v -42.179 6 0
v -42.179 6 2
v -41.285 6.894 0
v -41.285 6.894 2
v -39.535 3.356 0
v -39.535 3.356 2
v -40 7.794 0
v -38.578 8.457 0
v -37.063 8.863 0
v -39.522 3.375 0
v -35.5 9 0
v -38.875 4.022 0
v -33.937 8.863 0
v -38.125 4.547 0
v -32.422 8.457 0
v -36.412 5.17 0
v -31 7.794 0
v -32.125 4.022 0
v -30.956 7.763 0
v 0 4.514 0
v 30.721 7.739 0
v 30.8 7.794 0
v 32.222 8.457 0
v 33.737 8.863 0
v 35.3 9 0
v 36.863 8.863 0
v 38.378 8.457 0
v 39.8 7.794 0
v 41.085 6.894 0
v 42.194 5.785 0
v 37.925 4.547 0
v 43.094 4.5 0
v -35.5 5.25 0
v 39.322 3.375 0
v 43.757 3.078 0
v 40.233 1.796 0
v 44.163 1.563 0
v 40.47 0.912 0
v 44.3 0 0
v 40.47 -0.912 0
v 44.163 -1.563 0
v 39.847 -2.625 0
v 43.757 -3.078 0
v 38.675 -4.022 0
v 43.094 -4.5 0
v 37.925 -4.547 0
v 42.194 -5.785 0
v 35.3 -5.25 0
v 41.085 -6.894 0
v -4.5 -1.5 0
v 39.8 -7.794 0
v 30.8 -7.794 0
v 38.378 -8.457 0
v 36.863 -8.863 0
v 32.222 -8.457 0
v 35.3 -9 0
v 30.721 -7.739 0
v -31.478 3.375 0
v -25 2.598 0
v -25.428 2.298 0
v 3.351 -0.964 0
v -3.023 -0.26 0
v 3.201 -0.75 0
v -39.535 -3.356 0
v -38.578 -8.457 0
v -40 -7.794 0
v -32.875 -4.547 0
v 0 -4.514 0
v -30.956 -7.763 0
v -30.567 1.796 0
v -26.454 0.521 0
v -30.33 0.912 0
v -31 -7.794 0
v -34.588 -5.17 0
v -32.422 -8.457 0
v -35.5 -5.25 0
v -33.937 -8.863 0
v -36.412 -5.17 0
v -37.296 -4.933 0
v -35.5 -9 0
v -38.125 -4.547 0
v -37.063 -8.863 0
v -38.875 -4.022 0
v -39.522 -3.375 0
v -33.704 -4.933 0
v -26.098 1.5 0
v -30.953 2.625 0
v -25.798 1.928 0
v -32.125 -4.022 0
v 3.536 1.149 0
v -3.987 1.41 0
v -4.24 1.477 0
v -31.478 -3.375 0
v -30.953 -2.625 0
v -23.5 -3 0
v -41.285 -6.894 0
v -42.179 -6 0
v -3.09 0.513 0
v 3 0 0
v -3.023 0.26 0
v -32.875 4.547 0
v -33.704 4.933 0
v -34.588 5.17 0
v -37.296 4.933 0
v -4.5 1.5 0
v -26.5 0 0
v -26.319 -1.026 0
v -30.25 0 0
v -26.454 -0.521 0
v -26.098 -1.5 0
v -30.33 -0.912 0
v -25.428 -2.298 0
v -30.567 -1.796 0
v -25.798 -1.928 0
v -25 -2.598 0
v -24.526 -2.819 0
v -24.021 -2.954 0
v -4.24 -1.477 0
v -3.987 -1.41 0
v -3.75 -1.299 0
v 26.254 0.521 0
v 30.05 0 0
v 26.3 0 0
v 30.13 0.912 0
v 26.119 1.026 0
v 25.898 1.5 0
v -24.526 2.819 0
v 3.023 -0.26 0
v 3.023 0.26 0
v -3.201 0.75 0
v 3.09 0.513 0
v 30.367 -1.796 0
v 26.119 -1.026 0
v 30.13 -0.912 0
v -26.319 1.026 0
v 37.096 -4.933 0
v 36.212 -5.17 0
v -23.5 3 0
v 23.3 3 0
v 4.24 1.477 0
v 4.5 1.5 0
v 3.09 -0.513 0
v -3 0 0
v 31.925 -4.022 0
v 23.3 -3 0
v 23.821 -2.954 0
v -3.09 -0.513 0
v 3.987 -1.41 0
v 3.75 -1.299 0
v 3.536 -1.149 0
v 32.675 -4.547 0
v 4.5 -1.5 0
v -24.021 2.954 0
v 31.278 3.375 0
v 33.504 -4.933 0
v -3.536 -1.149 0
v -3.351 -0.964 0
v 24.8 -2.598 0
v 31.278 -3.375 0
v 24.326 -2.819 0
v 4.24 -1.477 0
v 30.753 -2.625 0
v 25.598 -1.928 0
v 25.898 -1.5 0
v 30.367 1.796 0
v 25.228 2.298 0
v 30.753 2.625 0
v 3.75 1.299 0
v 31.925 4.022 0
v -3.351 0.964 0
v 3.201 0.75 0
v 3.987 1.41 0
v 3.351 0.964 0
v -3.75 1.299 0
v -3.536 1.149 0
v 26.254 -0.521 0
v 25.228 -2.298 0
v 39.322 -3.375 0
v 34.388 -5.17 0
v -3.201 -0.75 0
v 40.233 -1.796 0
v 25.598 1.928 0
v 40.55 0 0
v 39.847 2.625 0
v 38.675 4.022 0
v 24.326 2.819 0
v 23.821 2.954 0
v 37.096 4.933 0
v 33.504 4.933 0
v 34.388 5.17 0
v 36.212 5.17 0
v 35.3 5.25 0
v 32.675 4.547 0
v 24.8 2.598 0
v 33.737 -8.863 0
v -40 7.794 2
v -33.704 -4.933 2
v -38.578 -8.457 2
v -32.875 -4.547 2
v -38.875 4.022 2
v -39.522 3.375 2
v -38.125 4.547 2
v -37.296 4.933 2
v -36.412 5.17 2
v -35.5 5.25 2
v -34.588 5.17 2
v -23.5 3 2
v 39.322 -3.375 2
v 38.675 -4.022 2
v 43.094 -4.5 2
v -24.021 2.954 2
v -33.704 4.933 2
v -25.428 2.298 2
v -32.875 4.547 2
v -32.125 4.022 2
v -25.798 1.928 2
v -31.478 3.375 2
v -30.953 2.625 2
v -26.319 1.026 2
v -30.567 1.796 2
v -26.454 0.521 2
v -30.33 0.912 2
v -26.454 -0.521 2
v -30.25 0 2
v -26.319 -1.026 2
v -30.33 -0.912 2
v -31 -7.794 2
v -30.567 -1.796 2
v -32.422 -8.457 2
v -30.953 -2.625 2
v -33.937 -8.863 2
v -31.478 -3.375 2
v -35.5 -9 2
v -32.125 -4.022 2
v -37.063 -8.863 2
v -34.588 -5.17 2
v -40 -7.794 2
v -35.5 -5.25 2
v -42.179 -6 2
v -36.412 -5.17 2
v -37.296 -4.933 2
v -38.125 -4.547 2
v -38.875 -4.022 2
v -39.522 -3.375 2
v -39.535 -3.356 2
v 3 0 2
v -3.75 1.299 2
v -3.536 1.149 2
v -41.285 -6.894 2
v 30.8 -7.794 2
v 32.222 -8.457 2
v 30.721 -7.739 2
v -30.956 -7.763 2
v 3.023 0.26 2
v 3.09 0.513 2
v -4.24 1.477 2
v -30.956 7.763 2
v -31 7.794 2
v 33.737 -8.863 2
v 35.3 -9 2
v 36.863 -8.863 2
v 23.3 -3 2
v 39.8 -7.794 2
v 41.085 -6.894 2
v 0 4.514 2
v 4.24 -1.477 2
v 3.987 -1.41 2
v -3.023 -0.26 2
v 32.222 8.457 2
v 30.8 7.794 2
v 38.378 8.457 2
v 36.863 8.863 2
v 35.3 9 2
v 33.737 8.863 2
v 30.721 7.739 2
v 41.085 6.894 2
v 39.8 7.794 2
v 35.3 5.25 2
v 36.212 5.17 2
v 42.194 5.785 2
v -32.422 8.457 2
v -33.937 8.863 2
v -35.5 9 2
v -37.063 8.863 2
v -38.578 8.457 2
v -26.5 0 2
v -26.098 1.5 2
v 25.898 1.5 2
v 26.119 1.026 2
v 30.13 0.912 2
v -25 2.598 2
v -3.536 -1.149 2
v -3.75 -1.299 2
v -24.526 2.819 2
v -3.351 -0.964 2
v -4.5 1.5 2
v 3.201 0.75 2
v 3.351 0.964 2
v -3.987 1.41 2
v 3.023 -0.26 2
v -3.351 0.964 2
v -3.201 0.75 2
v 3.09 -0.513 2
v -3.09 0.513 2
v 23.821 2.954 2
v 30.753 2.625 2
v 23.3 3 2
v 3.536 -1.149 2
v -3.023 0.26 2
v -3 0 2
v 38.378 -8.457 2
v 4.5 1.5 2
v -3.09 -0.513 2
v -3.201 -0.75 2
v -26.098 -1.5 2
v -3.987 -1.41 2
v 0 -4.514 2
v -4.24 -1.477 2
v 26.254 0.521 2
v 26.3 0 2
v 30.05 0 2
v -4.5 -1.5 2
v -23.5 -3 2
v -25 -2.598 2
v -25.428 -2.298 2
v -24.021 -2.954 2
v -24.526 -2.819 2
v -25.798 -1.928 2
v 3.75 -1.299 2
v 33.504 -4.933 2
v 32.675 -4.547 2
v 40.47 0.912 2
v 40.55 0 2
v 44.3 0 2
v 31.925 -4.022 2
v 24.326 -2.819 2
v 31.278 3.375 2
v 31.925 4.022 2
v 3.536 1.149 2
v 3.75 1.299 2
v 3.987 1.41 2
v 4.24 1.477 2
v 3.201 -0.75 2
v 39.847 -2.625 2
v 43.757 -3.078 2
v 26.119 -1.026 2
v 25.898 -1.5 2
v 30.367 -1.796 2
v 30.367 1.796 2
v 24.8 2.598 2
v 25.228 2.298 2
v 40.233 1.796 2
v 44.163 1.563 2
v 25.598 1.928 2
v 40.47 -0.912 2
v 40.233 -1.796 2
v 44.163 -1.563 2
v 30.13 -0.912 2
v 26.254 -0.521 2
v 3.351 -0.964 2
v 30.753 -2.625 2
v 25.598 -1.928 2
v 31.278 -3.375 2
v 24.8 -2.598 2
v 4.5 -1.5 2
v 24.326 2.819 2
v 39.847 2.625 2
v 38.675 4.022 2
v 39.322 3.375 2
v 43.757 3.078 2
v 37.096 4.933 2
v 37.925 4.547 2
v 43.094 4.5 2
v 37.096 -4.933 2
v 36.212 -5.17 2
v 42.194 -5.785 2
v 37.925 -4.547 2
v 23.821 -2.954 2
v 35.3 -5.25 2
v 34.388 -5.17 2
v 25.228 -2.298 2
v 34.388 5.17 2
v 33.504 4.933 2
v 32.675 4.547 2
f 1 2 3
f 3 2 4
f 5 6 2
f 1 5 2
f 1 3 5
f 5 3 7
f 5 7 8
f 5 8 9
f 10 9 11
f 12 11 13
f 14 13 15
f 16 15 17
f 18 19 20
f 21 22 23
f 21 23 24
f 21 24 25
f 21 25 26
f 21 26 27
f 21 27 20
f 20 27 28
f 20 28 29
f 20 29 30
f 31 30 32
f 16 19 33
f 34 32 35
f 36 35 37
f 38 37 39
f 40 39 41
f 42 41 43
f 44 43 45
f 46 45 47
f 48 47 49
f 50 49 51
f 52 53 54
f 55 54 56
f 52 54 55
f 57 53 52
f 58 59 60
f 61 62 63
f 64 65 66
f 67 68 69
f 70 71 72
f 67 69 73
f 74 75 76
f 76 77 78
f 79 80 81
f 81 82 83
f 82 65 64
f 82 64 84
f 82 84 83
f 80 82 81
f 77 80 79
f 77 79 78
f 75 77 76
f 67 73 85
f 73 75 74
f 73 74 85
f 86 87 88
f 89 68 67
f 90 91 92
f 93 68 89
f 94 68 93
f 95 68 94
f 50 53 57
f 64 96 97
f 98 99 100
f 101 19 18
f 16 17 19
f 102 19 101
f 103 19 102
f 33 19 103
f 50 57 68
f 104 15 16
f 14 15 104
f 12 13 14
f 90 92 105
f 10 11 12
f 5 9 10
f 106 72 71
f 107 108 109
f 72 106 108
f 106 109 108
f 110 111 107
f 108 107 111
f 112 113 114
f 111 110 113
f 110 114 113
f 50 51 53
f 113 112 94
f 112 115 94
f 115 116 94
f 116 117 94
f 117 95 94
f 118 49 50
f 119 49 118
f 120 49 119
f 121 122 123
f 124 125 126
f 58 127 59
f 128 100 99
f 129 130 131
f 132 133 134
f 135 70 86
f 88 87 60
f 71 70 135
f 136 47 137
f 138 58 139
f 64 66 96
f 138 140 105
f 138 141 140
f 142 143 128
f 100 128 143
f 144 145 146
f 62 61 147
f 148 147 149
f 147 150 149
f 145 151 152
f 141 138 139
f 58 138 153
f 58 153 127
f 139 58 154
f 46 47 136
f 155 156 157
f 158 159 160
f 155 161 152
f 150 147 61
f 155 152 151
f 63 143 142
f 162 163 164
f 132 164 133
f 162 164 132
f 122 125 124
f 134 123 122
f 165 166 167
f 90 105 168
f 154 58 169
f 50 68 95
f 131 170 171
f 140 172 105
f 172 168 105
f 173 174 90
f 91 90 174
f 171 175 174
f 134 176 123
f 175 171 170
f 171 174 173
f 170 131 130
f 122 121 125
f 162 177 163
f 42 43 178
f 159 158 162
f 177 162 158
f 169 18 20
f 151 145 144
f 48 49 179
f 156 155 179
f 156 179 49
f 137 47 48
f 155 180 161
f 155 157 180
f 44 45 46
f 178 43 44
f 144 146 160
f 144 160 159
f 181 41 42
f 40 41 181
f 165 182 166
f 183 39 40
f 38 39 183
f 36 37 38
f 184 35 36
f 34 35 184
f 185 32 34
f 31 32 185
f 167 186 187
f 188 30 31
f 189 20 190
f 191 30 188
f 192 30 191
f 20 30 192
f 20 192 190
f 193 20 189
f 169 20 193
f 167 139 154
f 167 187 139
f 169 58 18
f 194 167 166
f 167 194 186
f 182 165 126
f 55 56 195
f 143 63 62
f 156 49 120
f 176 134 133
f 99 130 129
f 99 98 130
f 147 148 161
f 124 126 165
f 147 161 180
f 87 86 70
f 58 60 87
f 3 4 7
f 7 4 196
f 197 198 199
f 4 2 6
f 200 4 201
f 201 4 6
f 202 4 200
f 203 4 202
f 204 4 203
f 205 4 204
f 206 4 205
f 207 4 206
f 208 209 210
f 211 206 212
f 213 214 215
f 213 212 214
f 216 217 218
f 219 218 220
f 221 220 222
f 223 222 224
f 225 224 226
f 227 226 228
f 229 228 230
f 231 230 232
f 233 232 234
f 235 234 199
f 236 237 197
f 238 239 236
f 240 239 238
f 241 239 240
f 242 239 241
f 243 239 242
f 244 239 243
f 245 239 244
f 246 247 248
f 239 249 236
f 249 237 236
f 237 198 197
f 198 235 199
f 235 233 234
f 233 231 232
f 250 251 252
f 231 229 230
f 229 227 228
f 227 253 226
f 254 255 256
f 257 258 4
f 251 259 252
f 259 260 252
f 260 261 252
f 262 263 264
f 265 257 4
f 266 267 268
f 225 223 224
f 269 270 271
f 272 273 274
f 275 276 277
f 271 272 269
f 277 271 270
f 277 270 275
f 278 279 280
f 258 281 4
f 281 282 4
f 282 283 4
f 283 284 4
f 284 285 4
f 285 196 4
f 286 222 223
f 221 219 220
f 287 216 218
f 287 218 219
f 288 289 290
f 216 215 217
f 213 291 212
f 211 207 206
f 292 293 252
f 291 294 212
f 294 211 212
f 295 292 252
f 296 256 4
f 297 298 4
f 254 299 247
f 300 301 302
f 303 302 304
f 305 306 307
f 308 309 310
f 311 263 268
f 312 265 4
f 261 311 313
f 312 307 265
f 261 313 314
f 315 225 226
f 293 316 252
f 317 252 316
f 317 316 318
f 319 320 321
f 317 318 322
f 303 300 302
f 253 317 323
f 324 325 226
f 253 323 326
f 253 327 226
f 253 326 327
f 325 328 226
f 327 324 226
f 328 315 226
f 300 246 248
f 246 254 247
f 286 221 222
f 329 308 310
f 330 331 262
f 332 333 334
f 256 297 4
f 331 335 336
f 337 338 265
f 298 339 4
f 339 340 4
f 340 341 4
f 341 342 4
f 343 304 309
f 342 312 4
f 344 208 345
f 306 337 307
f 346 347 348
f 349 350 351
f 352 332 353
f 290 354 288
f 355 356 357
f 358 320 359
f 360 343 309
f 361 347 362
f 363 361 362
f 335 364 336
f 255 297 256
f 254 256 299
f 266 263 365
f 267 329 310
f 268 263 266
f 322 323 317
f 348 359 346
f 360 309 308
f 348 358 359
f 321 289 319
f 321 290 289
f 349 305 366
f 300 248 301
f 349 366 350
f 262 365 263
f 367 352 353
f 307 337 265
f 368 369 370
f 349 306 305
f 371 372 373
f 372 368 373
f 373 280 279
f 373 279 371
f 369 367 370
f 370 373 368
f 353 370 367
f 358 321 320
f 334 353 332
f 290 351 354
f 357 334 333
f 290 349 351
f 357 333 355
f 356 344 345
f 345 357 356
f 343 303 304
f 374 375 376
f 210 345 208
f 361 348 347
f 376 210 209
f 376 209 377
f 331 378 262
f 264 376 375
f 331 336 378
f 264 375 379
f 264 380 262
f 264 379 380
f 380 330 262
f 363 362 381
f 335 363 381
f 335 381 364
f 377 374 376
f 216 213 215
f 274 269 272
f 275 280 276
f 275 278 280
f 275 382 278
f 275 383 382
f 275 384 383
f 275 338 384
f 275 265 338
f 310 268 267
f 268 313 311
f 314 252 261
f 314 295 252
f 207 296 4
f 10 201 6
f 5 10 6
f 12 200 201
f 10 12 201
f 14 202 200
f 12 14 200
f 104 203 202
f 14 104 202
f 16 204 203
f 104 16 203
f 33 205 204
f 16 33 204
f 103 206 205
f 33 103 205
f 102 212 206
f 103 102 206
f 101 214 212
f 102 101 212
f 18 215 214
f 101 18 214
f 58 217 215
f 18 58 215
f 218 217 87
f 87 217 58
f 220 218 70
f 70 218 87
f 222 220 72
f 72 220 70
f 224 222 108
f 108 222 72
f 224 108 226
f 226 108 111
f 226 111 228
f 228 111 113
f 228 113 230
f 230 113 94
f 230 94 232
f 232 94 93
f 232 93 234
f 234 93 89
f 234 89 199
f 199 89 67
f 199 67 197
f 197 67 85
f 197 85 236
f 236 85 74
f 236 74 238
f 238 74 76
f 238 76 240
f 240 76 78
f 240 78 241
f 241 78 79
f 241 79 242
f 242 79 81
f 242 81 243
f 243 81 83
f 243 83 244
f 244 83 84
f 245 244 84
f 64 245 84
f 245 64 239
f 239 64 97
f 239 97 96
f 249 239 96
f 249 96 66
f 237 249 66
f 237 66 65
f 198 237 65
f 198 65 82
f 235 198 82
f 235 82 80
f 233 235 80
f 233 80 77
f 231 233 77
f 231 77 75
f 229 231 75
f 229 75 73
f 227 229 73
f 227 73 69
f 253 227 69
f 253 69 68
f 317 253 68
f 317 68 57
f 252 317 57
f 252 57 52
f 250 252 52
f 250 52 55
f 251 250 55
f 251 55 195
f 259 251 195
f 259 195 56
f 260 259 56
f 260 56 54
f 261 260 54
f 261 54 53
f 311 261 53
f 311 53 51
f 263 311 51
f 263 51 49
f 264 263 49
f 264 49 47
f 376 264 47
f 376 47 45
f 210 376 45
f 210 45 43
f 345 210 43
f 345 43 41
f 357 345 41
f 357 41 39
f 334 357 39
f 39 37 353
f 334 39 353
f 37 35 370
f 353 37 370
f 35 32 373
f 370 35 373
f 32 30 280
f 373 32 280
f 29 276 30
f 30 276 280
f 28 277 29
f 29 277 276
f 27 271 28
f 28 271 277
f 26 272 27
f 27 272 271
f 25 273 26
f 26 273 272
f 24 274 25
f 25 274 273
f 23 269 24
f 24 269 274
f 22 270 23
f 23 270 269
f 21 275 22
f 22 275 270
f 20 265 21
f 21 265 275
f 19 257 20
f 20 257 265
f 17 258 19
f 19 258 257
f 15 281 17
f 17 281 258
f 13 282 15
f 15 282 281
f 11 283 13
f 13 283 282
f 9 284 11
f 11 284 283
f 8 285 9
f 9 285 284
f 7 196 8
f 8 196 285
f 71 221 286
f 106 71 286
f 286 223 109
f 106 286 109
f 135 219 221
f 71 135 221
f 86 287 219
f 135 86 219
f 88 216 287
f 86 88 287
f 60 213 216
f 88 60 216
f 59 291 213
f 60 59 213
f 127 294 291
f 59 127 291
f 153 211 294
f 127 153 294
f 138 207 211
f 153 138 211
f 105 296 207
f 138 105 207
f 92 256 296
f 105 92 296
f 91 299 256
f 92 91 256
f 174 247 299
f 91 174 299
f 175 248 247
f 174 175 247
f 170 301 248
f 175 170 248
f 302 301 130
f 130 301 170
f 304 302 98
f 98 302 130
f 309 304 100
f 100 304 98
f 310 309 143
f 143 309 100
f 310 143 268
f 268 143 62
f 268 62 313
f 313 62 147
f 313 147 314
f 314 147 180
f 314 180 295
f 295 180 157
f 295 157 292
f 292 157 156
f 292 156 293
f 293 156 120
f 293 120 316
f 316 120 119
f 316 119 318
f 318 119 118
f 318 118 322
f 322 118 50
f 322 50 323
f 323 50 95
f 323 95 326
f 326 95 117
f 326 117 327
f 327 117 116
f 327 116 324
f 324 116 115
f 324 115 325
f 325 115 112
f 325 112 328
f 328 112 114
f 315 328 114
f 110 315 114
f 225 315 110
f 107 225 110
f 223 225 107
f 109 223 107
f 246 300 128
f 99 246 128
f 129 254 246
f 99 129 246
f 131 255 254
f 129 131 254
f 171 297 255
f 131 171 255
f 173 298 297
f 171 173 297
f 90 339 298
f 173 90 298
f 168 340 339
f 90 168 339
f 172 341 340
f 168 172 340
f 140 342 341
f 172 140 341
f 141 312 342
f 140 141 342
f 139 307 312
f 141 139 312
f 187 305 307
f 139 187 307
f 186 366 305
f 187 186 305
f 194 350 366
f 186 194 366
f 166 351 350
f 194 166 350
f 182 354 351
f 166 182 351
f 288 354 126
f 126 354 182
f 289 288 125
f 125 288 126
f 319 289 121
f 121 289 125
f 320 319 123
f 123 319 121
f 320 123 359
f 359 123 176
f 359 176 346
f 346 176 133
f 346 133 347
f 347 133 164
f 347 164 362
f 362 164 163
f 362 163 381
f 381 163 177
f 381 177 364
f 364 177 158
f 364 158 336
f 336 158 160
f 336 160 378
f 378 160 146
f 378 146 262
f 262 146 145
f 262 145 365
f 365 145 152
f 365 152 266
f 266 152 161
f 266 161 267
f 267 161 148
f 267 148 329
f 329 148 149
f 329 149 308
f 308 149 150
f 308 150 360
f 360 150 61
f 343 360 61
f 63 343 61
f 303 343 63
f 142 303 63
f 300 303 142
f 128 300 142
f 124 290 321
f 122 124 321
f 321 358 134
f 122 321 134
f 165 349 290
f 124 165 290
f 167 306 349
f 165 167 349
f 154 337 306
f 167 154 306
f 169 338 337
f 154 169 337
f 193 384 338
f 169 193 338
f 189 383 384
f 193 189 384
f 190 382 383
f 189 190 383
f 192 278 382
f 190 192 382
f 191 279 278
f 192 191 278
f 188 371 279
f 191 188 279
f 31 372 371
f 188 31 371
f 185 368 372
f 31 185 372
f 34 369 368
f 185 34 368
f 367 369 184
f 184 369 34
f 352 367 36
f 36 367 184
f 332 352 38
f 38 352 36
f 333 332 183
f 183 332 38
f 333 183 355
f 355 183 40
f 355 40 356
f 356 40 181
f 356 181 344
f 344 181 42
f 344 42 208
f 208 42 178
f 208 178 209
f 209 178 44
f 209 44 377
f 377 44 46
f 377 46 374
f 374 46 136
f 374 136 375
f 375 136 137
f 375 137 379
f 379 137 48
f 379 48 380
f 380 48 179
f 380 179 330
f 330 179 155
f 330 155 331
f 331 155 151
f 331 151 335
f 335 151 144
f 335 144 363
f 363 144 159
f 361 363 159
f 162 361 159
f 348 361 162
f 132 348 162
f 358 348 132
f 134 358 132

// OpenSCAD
// center distances are based on the original

translate([-12.5 + (66 - 12.5) / -2, 0, 0])
 difference() {
  union() {
    translate([3.75, 0, 0]) cylinder(r=9, h = 2, $fn = 36);
    translate([74.55, 0, 0]) cylinder(r=9, h = 2, $fn = 36);
    hull() {
      translate([12.5, 0, 0]) 	 cylinder(r=9, h = 2, $fn = 3);
      translate([12.5 + (66 - 12.5) / 2, 0, 0]) cylinder(r=4.5, h = 2, $fn = 36);
    }
    hull() {
      translate([66, 0, 0]) rotate([0, 0, 180]) cylinder(r=9, h = 2, $fn = 3);
      translate([12.5 + (66 - 12.5) / 2, 0, 0]) cylinder(r=4.5, h = 2, $fn = 36);
    }
  }
  translate([3.75, 0, 0]) cylinder(r=5.25, h = 2, $fn = 36);
  translate([74.55, 0, 0]) cylinder(r=5.25, h = 2, $fn = 36);
  translate([-4, 0, 0]) rotate([0, 0, 45]) translate([-5, -5, 0]) cube([10, 10, 3]);

  hull() {
    translate([12.5 + (66 - 12.5) / 2 - 4.5, 0, 0]) cylinder(r=1.5, h = 2, $fn = 36);
    translate([3.75 + 9 + 3, 0, 0]) cylinder(r=3, h = 2, $fn = 36);
  }

  hull() {
    translate([12.5 + (66 - 12.5) / 2 + 4.5, 0, 0]) cylinder(r=1.5, h = 2, $fn = 36);
    translate([74.55 - 9 - 3, 0, 0]) cylinder(r=3, h = 2, $fn = 36);
  }
 }
